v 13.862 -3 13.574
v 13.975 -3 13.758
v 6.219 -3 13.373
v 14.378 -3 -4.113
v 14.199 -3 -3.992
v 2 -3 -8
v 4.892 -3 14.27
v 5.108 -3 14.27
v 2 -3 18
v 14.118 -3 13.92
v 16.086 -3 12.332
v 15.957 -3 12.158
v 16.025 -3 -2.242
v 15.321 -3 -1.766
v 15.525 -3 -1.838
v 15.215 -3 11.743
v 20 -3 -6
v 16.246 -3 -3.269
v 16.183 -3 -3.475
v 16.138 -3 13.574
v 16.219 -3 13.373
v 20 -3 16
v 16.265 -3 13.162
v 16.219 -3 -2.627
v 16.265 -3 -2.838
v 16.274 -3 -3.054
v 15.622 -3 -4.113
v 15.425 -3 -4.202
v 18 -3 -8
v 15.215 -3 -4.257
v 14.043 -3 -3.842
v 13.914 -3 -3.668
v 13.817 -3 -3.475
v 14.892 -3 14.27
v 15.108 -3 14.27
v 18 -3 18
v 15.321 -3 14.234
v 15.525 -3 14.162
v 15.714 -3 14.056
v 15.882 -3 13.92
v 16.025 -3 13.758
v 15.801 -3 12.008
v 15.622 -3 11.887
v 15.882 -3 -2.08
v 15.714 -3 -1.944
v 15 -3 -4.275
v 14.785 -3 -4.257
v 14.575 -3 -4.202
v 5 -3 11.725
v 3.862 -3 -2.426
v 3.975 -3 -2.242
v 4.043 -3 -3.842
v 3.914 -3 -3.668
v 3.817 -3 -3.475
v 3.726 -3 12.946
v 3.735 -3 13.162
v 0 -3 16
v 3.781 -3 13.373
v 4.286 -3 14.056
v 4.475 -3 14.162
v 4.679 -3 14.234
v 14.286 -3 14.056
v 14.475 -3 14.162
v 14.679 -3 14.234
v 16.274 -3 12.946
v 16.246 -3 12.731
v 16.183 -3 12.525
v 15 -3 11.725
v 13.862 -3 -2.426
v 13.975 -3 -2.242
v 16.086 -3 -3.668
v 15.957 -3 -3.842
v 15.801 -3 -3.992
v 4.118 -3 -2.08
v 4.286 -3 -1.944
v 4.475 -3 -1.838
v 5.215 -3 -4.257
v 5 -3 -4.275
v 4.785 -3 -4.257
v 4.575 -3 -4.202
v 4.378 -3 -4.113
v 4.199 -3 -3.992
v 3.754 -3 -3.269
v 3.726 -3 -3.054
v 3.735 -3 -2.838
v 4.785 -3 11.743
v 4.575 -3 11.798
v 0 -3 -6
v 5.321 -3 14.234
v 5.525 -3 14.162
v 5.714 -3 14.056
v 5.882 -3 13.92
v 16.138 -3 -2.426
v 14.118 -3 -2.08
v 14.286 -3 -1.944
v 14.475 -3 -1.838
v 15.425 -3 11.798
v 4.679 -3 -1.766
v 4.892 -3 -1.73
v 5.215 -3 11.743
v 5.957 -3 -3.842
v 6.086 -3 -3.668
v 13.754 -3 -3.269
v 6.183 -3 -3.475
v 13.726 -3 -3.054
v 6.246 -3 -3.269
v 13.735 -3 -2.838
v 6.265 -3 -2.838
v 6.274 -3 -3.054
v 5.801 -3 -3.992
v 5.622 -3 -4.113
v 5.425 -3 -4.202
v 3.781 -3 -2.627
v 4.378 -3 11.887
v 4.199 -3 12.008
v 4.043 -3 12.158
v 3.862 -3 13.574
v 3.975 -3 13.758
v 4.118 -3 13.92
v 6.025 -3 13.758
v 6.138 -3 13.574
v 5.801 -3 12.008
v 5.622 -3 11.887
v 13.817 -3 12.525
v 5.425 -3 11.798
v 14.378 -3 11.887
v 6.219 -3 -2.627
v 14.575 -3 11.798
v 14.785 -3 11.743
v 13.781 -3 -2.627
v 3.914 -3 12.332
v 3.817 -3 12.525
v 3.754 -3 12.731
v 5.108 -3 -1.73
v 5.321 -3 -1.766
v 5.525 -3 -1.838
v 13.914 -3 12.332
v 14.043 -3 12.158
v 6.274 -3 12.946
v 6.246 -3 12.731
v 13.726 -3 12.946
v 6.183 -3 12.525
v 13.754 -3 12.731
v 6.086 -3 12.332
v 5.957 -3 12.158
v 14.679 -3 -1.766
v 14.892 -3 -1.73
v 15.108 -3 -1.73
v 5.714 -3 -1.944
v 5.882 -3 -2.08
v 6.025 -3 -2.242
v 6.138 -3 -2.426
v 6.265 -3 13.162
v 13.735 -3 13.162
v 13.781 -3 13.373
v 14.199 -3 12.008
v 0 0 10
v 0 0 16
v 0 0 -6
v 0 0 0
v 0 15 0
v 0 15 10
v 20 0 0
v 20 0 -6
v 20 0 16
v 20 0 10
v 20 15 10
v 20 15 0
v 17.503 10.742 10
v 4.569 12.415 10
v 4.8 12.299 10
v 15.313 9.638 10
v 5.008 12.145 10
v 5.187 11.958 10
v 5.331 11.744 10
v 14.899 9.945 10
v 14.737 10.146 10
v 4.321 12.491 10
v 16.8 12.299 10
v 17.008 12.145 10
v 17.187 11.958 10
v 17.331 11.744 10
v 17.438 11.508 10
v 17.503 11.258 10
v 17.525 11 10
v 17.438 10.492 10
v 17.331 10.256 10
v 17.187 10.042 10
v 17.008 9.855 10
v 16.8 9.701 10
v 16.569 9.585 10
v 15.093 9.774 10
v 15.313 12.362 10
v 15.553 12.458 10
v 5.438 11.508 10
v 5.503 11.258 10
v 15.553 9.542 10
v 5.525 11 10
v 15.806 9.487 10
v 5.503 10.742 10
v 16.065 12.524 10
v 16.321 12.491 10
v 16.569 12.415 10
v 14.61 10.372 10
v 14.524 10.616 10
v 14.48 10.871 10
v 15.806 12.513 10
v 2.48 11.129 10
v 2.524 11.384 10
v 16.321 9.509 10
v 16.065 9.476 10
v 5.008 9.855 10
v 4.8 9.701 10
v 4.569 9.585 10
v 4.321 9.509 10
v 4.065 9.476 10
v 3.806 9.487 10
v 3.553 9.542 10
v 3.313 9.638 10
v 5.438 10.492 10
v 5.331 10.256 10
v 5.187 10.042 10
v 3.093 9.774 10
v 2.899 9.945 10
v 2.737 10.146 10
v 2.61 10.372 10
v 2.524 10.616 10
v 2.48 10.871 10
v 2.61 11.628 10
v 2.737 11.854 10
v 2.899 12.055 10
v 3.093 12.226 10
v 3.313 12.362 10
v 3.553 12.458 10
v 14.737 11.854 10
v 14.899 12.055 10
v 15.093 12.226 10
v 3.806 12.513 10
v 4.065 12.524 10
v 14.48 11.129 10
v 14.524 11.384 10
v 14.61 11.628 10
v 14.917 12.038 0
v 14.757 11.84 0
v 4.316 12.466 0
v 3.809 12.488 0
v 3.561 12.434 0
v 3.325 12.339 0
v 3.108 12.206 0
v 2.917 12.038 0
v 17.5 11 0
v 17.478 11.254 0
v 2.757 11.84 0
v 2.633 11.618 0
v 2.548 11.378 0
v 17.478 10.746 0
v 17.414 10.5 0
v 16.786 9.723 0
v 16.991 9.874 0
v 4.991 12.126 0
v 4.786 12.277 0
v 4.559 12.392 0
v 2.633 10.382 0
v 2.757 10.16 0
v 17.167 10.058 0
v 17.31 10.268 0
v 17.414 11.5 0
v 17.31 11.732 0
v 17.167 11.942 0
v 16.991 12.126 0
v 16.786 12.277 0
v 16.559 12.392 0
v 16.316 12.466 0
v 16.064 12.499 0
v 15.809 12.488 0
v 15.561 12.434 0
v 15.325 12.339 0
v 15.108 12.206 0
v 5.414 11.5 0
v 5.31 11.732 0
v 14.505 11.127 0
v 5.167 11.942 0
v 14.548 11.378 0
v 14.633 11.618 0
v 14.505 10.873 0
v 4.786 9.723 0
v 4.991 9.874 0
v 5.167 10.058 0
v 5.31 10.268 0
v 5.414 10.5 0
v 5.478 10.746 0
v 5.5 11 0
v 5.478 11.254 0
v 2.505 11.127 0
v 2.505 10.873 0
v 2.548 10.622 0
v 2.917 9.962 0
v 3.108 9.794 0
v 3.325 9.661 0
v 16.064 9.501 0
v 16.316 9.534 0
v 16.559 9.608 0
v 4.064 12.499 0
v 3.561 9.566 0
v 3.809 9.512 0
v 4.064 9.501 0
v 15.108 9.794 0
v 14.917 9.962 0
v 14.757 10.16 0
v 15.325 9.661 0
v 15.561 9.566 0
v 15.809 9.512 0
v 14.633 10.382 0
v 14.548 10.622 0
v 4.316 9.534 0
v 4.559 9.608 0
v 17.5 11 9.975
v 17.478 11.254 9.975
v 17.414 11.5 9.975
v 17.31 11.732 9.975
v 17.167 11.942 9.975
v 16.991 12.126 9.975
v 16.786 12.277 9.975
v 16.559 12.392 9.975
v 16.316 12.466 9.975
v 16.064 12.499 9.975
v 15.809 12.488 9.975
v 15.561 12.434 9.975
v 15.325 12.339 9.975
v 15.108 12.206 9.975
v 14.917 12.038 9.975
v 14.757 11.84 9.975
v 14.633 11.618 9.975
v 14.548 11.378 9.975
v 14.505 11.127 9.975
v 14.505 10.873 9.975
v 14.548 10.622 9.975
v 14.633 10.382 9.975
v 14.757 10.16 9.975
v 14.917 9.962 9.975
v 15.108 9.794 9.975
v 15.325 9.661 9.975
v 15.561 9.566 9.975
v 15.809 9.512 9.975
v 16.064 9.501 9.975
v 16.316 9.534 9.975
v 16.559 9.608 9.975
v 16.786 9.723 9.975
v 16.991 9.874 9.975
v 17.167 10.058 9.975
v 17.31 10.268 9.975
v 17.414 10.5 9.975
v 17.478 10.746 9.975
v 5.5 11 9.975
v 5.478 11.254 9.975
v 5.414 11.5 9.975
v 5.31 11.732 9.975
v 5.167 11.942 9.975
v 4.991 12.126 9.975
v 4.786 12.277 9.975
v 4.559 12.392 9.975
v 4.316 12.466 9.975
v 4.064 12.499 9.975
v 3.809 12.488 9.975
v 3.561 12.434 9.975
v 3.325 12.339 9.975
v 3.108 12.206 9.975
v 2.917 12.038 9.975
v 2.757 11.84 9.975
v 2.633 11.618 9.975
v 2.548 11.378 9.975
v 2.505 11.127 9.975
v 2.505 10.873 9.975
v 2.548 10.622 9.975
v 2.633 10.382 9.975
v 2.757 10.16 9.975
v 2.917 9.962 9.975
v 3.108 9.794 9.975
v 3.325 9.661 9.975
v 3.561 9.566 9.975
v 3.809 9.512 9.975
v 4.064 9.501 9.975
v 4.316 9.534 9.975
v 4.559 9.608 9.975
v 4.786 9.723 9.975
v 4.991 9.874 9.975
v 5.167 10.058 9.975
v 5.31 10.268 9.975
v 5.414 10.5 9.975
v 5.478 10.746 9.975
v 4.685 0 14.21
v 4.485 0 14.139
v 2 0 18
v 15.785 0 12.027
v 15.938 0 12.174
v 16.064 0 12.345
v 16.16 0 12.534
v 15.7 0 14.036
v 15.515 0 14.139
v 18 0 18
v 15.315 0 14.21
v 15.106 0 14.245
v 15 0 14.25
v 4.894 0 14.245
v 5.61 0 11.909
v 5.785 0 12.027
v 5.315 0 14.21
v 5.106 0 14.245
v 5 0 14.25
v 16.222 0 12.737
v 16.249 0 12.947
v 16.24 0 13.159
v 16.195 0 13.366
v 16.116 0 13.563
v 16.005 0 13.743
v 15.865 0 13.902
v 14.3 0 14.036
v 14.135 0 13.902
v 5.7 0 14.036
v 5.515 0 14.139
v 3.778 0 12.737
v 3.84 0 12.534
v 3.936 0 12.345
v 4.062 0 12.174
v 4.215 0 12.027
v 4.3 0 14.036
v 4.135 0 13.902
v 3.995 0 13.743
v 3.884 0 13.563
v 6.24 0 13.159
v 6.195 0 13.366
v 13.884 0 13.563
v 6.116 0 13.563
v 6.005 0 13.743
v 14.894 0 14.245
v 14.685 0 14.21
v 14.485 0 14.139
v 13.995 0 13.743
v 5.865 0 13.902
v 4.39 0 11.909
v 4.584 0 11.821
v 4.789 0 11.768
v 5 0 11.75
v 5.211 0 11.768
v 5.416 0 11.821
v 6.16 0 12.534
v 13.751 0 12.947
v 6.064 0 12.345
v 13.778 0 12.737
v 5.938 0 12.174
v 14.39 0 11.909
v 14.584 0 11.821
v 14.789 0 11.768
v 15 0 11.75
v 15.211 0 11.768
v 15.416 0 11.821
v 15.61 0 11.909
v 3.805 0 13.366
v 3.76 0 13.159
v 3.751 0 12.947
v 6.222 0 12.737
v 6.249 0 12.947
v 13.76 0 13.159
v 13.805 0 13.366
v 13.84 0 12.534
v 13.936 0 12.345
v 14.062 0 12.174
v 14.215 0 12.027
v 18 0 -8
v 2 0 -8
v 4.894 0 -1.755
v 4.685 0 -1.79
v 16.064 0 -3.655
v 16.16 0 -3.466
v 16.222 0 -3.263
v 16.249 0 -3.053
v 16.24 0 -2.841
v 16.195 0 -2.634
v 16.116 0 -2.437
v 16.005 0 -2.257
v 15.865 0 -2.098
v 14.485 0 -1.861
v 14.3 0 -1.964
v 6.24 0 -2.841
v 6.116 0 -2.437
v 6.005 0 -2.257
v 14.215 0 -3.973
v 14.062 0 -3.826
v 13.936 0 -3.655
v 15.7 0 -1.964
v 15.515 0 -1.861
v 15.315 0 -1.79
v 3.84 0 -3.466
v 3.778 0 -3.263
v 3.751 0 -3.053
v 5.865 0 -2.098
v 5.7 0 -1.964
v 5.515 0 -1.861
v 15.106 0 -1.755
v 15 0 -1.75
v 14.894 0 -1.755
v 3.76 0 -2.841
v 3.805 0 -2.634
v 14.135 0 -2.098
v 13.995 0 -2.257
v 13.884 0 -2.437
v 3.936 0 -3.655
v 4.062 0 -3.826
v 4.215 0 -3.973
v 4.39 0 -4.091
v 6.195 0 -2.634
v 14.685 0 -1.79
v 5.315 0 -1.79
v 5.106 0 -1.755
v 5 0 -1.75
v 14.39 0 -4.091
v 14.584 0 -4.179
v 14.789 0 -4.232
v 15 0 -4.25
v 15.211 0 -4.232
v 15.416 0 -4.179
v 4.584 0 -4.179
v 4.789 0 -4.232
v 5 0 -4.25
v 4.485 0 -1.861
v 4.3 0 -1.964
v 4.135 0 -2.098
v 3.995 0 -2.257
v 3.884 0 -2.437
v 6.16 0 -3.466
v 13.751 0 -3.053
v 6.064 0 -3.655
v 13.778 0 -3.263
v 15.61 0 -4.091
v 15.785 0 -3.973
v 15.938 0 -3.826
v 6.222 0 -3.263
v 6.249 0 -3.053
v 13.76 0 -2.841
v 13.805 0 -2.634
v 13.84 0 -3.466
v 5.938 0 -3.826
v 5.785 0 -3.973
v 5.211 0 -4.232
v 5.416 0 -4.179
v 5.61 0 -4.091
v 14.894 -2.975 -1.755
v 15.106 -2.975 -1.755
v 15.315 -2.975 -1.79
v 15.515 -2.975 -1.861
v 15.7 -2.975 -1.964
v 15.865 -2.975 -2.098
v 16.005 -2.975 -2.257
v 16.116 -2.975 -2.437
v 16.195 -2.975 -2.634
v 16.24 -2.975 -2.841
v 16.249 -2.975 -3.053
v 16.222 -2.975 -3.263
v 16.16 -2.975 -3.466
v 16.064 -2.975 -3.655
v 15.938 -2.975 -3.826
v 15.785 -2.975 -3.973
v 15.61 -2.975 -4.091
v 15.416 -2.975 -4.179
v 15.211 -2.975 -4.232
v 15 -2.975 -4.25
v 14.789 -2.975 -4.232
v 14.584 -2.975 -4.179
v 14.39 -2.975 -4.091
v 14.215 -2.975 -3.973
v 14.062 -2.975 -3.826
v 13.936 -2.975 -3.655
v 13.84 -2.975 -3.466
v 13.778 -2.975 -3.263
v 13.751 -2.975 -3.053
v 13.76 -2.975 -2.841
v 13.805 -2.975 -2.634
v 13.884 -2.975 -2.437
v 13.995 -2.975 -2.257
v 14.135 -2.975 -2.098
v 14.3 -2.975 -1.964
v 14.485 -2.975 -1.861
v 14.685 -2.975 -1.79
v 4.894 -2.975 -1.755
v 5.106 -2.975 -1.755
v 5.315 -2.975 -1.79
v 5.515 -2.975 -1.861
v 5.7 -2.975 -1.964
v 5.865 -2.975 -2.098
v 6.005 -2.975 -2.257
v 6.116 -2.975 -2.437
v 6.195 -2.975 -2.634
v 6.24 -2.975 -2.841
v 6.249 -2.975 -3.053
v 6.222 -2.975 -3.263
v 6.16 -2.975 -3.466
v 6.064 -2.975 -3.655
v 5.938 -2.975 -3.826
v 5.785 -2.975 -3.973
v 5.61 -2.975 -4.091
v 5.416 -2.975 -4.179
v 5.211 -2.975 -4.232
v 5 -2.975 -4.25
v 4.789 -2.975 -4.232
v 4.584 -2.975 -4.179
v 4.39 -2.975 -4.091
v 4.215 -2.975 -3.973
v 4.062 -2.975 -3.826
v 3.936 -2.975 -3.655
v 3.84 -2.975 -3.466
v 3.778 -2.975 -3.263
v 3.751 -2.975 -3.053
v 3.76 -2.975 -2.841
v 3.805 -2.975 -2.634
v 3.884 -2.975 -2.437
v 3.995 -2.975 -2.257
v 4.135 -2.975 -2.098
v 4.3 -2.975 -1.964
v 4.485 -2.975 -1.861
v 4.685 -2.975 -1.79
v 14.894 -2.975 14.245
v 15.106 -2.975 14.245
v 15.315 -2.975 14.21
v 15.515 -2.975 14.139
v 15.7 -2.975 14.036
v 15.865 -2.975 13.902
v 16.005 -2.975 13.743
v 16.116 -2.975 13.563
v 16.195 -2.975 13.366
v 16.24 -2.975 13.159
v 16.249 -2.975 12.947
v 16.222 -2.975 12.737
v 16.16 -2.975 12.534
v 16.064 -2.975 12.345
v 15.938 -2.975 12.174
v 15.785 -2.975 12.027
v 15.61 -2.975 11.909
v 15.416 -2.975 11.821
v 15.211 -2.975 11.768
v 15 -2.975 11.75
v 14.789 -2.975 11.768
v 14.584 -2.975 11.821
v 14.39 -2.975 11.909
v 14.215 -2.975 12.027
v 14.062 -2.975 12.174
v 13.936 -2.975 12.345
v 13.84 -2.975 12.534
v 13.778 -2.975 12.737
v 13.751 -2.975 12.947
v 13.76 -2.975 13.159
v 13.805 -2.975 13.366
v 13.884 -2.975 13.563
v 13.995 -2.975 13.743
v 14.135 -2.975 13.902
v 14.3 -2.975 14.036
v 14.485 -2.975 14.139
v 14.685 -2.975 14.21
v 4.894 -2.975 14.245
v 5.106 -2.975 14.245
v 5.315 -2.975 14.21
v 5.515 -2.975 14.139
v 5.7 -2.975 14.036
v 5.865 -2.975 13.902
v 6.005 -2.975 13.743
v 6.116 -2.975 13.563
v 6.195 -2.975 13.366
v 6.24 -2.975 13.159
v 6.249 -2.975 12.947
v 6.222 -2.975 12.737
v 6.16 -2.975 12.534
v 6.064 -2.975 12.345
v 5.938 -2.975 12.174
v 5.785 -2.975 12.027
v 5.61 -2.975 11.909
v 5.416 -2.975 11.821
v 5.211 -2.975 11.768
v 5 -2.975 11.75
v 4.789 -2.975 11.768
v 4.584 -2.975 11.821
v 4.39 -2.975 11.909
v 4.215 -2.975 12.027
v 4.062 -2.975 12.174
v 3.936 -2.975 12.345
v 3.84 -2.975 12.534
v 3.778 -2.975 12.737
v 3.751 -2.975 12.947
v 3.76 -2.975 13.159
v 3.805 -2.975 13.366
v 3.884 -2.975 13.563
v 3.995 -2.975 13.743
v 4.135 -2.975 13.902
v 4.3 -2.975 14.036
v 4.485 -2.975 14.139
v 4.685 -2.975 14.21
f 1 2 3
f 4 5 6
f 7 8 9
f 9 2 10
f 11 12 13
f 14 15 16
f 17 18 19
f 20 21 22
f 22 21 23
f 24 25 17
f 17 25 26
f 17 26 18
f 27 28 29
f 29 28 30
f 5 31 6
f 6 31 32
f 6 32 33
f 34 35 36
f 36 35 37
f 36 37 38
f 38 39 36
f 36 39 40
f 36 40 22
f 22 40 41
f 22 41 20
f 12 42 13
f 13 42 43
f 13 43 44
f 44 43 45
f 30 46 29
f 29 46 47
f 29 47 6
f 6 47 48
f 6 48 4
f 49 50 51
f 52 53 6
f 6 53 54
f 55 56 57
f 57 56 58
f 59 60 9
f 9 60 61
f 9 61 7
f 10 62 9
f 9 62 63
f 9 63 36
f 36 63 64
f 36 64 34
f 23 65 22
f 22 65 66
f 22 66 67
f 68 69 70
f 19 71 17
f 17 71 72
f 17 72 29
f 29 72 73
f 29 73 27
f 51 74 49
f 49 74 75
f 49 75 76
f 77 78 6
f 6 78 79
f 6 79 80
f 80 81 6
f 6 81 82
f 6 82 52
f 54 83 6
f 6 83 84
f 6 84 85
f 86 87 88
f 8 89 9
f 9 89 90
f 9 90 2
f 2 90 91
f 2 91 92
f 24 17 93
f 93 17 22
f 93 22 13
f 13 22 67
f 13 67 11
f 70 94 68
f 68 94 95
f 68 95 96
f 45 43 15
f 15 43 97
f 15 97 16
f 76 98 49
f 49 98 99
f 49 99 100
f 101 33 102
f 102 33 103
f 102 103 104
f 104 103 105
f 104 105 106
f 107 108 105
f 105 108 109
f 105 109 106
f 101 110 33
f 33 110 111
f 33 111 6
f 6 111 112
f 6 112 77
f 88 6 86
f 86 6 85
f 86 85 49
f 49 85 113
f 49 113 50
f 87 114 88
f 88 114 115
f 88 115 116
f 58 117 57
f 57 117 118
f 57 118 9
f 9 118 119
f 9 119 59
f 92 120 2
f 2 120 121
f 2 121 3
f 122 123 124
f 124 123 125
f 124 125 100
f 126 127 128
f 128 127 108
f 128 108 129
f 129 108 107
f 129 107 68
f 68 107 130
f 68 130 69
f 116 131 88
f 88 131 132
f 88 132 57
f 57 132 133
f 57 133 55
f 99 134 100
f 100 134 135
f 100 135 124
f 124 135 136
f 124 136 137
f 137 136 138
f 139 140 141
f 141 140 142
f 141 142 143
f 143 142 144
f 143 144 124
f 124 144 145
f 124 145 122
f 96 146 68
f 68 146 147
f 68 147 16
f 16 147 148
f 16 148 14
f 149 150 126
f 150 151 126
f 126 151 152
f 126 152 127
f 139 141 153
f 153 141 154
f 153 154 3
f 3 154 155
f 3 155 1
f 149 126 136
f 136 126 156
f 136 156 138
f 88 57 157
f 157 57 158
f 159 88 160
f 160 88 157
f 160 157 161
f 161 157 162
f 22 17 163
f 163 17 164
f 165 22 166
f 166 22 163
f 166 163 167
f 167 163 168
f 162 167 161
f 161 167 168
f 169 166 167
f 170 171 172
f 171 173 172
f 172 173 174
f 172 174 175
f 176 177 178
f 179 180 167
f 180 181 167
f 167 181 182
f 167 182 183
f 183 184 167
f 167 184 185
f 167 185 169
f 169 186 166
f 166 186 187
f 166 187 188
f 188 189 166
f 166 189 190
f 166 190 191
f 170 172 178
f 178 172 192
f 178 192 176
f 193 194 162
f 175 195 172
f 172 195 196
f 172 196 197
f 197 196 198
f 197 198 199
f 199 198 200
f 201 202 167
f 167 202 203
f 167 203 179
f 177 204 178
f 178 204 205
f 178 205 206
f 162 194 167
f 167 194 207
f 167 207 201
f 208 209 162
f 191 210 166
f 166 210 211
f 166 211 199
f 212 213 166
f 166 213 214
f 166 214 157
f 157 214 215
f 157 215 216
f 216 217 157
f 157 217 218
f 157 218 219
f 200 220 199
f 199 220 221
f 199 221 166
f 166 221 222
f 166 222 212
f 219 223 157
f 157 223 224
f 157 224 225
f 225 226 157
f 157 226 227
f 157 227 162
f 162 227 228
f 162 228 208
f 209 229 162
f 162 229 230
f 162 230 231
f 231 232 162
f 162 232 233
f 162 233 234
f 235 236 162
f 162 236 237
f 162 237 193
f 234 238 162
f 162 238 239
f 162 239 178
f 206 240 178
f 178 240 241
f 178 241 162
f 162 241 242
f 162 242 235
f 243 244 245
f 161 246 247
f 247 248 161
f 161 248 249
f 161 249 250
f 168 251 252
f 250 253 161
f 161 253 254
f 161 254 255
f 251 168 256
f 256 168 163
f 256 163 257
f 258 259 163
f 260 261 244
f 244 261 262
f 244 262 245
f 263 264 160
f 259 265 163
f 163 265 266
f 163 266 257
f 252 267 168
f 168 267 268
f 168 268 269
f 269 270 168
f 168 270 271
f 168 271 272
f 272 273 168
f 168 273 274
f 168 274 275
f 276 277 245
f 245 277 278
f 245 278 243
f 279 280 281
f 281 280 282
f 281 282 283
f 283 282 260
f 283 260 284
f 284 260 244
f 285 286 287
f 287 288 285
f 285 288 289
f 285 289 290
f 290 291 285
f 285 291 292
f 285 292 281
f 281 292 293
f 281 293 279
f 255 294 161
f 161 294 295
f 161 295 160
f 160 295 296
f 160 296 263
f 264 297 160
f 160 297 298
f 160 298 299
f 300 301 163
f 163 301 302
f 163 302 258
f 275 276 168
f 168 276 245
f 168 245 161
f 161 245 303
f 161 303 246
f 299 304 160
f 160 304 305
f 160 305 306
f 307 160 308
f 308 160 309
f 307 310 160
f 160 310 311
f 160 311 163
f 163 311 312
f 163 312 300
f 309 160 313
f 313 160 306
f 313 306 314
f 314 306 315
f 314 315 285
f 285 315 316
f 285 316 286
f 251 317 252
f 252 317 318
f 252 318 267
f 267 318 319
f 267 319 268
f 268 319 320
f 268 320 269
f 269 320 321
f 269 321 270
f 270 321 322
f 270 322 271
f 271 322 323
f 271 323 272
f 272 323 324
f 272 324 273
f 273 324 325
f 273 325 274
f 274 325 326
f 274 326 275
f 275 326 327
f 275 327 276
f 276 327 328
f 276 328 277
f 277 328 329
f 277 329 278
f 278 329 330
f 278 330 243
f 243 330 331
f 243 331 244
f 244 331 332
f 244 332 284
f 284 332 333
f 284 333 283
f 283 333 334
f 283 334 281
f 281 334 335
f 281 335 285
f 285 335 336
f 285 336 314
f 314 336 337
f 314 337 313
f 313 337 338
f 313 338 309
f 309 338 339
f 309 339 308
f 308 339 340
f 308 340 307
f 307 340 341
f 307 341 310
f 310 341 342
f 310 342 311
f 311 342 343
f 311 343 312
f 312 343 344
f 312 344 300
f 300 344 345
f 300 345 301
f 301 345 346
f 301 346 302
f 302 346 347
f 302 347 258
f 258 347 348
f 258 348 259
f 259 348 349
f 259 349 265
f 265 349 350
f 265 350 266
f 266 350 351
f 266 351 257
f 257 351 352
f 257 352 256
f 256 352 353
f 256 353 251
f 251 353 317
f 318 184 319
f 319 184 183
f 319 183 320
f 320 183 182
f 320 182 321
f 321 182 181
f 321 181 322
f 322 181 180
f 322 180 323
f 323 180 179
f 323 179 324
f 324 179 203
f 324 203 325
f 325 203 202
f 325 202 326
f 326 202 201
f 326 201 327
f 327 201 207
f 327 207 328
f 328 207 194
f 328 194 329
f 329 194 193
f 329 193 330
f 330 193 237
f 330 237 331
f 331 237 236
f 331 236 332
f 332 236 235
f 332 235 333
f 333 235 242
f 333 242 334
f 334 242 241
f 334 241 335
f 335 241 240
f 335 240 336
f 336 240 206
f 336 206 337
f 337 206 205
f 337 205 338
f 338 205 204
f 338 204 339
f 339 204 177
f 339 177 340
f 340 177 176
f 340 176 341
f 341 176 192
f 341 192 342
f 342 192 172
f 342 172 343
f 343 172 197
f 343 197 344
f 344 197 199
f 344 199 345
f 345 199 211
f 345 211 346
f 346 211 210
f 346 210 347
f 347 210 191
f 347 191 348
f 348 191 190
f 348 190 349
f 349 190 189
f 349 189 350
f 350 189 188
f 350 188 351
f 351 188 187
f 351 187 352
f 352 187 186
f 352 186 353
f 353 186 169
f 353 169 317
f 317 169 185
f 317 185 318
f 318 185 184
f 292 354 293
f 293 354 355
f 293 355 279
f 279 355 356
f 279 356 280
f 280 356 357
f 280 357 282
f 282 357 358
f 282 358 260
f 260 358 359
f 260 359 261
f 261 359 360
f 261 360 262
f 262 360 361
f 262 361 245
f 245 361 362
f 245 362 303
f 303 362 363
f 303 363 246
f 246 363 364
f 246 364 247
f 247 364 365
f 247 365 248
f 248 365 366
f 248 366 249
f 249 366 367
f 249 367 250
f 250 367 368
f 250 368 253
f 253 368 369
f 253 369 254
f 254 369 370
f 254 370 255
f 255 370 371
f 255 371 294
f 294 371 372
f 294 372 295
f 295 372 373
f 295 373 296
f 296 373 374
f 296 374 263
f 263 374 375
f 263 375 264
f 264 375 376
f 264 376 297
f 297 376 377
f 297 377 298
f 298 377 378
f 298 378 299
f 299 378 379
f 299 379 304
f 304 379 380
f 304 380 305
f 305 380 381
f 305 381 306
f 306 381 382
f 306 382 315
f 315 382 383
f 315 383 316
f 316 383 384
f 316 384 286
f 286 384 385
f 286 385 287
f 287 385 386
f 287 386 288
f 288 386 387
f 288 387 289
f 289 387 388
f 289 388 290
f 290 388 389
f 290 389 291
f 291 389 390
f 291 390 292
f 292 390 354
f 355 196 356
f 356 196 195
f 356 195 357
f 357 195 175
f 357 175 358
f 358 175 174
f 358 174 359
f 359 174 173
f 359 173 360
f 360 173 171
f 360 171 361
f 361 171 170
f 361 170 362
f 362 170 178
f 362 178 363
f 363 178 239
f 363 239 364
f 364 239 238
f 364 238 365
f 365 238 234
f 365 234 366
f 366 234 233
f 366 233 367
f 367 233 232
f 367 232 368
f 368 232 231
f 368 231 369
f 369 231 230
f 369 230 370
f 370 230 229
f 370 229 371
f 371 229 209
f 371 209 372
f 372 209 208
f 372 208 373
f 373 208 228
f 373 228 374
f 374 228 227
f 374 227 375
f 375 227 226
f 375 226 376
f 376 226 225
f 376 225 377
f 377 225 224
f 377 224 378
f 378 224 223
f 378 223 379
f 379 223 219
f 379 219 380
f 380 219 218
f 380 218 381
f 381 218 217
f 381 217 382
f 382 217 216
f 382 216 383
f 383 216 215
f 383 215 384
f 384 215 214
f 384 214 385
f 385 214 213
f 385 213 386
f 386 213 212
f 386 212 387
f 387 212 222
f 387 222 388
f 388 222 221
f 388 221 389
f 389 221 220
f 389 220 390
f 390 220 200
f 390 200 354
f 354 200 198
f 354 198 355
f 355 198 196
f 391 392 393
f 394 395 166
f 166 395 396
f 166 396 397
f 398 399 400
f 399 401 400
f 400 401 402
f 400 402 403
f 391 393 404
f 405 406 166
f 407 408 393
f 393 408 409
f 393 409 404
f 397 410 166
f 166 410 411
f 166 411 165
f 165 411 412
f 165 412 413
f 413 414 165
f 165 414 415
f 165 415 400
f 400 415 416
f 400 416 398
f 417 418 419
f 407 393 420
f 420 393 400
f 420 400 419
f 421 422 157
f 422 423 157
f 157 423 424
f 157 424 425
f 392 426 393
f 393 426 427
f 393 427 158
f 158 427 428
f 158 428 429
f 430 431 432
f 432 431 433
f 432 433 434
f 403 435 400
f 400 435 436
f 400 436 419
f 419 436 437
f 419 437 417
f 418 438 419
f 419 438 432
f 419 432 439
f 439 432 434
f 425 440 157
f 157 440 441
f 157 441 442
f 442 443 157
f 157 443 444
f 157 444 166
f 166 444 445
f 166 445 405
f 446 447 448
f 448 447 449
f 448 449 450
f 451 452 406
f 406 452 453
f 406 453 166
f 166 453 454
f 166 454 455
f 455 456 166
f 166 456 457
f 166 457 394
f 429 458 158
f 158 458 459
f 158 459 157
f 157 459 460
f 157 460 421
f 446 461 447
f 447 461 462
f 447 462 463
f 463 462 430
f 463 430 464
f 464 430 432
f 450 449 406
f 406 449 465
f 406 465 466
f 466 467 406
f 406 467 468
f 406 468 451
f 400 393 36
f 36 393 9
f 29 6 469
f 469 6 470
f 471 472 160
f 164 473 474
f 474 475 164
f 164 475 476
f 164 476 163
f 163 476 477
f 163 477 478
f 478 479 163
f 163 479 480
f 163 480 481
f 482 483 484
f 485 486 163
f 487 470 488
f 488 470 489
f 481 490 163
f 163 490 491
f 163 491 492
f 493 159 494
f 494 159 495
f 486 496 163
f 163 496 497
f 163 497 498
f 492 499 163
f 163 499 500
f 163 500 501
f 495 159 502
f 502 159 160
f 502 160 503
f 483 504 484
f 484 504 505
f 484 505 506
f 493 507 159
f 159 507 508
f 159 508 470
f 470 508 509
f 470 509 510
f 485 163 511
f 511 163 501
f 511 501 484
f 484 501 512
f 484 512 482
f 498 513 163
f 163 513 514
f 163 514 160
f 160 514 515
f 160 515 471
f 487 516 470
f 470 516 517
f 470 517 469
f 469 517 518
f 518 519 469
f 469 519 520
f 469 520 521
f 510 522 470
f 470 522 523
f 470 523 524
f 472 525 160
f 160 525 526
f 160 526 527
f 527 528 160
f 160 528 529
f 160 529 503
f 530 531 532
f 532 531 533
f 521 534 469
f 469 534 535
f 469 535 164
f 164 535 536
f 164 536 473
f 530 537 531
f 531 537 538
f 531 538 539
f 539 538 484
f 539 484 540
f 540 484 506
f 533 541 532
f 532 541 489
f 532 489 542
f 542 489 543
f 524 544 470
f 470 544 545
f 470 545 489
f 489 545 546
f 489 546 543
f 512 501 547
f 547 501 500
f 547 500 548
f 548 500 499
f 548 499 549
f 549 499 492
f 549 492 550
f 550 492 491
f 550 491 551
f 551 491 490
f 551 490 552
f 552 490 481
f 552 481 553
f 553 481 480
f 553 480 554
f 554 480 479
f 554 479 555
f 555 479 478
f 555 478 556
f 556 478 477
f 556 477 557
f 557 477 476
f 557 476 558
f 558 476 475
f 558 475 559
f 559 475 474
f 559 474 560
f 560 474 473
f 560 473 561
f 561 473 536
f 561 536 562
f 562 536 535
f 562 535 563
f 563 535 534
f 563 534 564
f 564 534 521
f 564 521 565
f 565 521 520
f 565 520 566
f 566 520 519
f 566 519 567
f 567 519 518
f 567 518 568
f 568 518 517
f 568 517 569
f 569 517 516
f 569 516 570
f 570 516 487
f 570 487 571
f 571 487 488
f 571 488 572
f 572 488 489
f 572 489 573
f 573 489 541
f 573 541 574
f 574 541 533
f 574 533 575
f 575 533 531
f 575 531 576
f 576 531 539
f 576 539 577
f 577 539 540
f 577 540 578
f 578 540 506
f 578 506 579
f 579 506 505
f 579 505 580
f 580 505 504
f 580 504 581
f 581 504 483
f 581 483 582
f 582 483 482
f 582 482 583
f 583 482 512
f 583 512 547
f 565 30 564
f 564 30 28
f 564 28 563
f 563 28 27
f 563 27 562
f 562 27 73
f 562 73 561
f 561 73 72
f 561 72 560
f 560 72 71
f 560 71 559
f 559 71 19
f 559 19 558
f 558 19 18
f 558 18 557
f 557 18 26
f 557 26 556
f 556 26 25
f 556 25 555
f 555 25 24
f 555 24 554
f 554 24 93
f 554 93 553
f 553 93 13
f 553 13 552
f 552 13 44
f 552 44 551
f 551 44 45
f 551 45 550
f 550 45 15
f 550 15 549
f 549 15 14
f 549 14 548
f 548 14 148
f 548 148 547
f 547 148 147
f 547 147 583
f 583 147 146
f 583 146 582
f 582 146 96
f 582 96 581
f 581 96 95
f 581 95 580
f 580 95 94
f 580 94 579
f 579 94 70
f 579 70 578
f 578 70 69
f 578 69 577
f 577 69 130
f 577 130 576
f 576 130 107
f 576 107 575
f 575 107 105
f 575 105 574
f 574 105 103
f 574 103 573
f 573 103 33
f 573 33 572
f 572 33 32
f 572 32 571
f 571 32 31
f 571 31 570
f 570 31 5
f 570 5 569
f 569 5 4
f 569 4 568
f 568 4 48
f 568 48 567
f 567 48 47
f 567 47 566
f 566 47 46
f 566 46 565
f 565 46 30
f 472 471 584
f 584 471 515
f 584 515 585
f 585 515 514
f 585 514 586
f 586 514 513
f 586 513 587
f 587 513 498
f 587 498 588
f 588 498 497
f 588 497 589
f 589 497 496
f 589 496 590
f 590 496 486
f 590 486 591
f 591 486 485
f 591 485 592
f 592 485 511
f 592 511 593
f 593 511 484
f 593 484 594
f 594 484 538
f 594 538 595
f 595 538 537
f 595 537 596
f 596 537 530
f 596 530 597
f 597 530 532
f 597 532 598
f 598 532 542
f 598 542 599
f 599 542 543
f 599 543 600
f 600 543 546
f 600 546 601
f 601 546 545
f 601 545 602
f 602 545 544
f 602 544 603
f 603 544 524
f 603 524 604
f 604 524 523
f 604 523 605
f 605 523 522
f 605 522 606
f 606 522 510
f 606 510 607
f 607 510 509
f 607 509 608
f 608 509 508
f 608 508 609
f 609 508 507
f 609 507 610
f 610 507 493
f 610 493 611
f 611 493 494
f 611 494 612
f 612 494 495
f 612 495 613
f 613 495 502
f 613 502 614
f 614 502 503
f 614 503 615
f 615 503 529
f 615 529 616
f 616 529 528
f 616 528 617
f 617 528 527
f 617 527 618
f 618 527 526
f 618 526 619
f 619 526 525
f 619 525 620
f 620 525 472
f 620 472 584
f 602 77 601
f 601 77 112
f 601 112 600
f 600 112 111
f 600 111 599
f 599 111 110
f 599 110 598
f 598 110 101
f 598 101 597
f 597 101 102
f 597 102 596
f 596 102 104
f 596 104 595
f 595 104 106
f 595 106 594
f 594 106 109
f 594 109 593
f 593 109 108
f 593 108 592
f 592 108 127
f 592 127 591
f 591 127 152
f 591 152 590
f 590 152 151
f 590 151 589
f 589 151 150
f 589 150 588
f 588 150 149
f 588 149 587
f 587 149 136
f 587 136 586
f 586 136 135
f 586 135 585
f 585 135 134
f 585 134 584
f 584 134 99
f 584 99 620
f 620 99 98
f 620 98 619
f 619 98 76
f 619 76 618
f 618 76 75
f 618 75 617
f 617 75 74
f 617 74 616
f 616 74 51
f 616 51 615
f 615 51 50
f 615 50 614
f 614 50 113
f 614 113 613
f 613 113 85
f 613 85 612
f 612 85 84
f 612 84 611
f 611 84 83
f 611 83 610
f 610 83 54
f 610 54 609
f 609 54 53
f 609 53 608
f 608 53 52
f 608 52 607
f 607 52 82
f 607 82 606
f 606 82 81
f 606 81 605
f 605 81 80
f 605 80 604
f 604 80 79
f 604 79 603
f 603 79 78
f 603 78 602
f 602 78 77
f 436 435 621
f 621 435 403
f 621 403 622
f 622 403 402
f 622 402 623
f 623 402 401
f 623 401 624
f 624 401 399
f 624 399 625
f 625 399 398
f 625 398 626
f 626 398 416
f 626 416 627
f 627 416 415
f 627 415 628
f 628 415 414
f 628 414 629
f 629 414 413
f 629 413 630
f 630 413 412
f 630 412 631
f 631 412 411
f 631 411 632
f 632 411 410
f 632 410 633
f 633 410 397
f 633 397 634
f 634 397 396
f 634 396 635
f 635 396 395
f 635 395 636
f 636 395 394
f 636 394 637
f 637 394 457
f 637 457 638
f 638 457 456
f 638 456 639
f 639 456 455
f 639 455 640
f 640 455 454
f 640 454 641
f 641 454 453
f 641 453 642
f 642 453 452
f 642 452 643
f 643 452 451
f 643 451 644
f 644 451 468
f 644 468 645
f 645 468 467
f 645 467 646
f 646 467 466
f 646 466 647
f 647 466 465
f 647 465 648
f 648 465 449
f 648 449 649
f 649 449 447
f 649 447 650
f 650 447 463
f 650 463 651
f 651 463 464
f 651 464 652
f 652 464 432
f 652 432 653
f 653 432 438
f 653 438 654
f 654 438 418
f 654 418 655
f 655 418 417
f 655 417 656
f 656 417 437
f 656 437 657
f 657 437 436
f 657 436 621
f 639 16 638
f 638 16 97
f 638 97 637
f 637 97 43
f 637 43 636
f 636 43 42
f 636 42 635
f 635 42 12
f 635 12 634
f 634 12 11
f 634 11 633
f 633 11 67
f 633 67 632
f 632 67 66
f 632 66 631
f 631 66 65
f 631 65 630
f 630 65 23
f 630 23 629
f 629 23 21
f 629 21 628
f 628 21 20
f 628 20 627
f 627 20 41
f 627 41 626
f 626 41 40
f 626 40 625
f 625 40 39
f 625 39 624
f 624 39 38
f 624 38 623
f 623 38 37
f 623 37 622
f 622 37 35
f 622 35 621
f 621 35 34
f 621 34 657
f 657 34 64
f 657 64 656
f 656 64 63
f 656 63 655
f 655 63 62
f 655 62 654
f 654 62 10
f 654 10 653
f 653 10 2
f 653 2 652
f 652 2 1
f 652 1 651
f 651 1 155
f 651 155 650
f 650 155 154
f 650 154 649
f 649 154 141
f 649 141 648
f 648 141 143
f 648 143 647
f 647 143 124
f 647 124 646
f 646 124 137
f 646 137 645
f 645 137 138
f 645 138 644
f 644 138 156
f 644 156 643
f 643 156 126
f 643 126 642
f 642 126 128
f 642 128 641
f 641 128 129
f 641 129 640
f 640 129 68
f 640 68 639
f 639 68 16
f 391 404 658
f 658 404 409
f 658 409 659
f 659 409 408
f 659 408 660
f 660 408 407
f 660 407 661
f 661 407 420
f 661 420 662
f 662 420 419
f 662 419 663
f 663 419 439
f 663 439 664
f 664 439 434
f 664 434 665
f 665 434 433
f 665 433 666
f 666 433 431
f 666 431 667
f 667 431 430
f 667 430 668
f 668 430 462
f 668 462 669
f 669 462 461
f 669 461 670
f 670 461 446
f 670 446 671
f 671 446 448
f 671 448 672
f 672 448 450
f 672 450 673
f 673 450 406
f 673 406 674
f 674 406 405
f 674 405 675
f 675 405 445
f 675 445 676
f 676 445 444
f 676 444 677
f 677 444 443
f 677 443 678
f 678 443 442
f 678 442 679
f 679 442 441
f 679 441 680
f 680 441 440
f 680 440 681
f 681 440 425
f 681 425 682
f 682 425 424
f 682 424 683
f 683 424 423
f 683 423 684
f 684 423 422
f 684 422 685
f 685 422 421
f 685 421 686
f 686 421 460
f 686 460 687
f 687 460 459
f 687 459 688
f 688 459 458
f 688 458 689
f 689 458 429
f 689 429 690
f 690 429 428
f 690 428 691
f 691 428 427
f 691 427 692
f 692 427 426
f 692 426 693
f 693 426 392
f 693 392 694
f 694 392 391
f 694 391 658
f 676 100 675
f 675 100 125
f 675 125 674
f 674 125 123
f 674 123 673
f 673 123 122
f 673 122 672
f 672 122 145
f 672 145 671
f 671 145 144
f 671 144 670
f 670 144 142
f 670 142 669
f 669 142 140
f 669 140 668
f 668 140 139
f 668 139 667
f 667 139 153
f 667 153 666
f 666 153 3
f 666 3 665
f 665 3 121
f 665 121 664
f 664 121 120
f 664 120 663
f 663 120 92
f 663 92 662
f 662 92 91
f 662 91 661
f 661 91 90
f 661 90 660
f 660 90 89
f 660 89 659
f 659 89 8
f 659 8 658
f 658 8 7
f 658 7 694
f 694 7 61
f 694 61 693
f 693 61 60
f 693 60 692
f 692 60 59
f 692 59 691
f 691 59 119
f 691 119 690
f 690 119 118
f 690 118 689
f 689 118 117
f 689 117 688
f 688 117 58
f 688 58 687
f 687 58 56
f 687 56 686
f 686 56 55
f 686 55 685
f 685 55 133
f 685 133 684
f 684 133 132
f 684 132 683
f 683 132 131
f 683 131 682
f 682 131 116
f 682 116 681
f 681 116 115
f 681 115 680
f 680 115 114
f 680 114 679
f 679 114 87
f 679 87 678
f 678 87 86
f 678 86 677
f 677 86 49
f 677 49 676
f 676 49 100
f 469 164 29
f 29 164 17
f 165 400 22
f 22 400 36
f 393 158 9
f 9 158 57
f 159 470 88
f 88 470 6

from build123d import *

# Parameters (mm, degrees)
SKETCH_1_W            = 20
SKETCH_1_H            = 15
EXTRUDE_1_DEPTH       = 10
F_3_0MM_1_D           = 3
F_3_0MM_1_CSINK_D     = 3.05
F_3_0MM_1_CSINK_ANGLE = 90
SKETCH_3_W            = 20
SKETCH_3_H            = 26
EXTRUDE_2_DEPTH       = 3
F_2_5MM_1_D           = 2.5
F_2_5MM_1_CSINK_D     = 2.55
F_2_5MM_1_CSINK_ANGLE = 90
CHAMFER_1_SIZE        = 2


with BuildPart() as part:
    # 草图1 → 凸台-拉伸1 (new body)
    with BuildSketch(Plane.XY):
        with Locations((10, 7.5)):
            Rectangle(SKETCH_1_W, SKETCH_1_H)
    extrude(amount=EXTRUDE_1_DEPTH)

    # Ø3.0mm 暗销孔1 (through all)
    with Locations(Plane(origin=(4, 11, 10), x_dir=(1, 0, 0), z_dir=(0, 0, 1))):
        with Locations((0, 0), (12, 0)):
            CounterSinkHole(F_3_0MM_1_D / 2, F_3_0MM_1_CSINK_D / 2, counter_sink_angle=F_3_0MM_1_CSINK_ANGLE)

    # 草图3 → 凸台-拉伸2 (add)
    with BuildSketch(Plane.XZ):
        with Locations((10, 5)):
            Rectangle(SKETCH_3_W, SKETCH_3_H)
    extrude(amount=EXTRUDE_2_DEPTH)

    # Ø2.5mm 暗销孔1 (through all)
    with Locations(Plane(origin=(5, -3, 13), x_dir=(0, 0, -1), z_dir=(0, -1, 0))):
        with Locations((0, 0), (0, 10), (16, 0), (16, 10)):
            CounterSinkHole(F_2_5MM_1_D / 2, F_2_5MM_1_CSINK_D / 2, counter_sink_angle=F_2_5MM_1_CSINK_ANGLE)

    # 倒角1
    chamfer_1_edges = [part.edges().sort_by_distance(p)[0] for p in [
        (20, -1.5, -8),
        (20, -1.5, 18),
        (0, -1.5, 18),
        (0, -1.5, -8),
    ]]
    chamfer(chamfer_1_edges, length=CHAMFER_1_SIZE)


solid = part.part
